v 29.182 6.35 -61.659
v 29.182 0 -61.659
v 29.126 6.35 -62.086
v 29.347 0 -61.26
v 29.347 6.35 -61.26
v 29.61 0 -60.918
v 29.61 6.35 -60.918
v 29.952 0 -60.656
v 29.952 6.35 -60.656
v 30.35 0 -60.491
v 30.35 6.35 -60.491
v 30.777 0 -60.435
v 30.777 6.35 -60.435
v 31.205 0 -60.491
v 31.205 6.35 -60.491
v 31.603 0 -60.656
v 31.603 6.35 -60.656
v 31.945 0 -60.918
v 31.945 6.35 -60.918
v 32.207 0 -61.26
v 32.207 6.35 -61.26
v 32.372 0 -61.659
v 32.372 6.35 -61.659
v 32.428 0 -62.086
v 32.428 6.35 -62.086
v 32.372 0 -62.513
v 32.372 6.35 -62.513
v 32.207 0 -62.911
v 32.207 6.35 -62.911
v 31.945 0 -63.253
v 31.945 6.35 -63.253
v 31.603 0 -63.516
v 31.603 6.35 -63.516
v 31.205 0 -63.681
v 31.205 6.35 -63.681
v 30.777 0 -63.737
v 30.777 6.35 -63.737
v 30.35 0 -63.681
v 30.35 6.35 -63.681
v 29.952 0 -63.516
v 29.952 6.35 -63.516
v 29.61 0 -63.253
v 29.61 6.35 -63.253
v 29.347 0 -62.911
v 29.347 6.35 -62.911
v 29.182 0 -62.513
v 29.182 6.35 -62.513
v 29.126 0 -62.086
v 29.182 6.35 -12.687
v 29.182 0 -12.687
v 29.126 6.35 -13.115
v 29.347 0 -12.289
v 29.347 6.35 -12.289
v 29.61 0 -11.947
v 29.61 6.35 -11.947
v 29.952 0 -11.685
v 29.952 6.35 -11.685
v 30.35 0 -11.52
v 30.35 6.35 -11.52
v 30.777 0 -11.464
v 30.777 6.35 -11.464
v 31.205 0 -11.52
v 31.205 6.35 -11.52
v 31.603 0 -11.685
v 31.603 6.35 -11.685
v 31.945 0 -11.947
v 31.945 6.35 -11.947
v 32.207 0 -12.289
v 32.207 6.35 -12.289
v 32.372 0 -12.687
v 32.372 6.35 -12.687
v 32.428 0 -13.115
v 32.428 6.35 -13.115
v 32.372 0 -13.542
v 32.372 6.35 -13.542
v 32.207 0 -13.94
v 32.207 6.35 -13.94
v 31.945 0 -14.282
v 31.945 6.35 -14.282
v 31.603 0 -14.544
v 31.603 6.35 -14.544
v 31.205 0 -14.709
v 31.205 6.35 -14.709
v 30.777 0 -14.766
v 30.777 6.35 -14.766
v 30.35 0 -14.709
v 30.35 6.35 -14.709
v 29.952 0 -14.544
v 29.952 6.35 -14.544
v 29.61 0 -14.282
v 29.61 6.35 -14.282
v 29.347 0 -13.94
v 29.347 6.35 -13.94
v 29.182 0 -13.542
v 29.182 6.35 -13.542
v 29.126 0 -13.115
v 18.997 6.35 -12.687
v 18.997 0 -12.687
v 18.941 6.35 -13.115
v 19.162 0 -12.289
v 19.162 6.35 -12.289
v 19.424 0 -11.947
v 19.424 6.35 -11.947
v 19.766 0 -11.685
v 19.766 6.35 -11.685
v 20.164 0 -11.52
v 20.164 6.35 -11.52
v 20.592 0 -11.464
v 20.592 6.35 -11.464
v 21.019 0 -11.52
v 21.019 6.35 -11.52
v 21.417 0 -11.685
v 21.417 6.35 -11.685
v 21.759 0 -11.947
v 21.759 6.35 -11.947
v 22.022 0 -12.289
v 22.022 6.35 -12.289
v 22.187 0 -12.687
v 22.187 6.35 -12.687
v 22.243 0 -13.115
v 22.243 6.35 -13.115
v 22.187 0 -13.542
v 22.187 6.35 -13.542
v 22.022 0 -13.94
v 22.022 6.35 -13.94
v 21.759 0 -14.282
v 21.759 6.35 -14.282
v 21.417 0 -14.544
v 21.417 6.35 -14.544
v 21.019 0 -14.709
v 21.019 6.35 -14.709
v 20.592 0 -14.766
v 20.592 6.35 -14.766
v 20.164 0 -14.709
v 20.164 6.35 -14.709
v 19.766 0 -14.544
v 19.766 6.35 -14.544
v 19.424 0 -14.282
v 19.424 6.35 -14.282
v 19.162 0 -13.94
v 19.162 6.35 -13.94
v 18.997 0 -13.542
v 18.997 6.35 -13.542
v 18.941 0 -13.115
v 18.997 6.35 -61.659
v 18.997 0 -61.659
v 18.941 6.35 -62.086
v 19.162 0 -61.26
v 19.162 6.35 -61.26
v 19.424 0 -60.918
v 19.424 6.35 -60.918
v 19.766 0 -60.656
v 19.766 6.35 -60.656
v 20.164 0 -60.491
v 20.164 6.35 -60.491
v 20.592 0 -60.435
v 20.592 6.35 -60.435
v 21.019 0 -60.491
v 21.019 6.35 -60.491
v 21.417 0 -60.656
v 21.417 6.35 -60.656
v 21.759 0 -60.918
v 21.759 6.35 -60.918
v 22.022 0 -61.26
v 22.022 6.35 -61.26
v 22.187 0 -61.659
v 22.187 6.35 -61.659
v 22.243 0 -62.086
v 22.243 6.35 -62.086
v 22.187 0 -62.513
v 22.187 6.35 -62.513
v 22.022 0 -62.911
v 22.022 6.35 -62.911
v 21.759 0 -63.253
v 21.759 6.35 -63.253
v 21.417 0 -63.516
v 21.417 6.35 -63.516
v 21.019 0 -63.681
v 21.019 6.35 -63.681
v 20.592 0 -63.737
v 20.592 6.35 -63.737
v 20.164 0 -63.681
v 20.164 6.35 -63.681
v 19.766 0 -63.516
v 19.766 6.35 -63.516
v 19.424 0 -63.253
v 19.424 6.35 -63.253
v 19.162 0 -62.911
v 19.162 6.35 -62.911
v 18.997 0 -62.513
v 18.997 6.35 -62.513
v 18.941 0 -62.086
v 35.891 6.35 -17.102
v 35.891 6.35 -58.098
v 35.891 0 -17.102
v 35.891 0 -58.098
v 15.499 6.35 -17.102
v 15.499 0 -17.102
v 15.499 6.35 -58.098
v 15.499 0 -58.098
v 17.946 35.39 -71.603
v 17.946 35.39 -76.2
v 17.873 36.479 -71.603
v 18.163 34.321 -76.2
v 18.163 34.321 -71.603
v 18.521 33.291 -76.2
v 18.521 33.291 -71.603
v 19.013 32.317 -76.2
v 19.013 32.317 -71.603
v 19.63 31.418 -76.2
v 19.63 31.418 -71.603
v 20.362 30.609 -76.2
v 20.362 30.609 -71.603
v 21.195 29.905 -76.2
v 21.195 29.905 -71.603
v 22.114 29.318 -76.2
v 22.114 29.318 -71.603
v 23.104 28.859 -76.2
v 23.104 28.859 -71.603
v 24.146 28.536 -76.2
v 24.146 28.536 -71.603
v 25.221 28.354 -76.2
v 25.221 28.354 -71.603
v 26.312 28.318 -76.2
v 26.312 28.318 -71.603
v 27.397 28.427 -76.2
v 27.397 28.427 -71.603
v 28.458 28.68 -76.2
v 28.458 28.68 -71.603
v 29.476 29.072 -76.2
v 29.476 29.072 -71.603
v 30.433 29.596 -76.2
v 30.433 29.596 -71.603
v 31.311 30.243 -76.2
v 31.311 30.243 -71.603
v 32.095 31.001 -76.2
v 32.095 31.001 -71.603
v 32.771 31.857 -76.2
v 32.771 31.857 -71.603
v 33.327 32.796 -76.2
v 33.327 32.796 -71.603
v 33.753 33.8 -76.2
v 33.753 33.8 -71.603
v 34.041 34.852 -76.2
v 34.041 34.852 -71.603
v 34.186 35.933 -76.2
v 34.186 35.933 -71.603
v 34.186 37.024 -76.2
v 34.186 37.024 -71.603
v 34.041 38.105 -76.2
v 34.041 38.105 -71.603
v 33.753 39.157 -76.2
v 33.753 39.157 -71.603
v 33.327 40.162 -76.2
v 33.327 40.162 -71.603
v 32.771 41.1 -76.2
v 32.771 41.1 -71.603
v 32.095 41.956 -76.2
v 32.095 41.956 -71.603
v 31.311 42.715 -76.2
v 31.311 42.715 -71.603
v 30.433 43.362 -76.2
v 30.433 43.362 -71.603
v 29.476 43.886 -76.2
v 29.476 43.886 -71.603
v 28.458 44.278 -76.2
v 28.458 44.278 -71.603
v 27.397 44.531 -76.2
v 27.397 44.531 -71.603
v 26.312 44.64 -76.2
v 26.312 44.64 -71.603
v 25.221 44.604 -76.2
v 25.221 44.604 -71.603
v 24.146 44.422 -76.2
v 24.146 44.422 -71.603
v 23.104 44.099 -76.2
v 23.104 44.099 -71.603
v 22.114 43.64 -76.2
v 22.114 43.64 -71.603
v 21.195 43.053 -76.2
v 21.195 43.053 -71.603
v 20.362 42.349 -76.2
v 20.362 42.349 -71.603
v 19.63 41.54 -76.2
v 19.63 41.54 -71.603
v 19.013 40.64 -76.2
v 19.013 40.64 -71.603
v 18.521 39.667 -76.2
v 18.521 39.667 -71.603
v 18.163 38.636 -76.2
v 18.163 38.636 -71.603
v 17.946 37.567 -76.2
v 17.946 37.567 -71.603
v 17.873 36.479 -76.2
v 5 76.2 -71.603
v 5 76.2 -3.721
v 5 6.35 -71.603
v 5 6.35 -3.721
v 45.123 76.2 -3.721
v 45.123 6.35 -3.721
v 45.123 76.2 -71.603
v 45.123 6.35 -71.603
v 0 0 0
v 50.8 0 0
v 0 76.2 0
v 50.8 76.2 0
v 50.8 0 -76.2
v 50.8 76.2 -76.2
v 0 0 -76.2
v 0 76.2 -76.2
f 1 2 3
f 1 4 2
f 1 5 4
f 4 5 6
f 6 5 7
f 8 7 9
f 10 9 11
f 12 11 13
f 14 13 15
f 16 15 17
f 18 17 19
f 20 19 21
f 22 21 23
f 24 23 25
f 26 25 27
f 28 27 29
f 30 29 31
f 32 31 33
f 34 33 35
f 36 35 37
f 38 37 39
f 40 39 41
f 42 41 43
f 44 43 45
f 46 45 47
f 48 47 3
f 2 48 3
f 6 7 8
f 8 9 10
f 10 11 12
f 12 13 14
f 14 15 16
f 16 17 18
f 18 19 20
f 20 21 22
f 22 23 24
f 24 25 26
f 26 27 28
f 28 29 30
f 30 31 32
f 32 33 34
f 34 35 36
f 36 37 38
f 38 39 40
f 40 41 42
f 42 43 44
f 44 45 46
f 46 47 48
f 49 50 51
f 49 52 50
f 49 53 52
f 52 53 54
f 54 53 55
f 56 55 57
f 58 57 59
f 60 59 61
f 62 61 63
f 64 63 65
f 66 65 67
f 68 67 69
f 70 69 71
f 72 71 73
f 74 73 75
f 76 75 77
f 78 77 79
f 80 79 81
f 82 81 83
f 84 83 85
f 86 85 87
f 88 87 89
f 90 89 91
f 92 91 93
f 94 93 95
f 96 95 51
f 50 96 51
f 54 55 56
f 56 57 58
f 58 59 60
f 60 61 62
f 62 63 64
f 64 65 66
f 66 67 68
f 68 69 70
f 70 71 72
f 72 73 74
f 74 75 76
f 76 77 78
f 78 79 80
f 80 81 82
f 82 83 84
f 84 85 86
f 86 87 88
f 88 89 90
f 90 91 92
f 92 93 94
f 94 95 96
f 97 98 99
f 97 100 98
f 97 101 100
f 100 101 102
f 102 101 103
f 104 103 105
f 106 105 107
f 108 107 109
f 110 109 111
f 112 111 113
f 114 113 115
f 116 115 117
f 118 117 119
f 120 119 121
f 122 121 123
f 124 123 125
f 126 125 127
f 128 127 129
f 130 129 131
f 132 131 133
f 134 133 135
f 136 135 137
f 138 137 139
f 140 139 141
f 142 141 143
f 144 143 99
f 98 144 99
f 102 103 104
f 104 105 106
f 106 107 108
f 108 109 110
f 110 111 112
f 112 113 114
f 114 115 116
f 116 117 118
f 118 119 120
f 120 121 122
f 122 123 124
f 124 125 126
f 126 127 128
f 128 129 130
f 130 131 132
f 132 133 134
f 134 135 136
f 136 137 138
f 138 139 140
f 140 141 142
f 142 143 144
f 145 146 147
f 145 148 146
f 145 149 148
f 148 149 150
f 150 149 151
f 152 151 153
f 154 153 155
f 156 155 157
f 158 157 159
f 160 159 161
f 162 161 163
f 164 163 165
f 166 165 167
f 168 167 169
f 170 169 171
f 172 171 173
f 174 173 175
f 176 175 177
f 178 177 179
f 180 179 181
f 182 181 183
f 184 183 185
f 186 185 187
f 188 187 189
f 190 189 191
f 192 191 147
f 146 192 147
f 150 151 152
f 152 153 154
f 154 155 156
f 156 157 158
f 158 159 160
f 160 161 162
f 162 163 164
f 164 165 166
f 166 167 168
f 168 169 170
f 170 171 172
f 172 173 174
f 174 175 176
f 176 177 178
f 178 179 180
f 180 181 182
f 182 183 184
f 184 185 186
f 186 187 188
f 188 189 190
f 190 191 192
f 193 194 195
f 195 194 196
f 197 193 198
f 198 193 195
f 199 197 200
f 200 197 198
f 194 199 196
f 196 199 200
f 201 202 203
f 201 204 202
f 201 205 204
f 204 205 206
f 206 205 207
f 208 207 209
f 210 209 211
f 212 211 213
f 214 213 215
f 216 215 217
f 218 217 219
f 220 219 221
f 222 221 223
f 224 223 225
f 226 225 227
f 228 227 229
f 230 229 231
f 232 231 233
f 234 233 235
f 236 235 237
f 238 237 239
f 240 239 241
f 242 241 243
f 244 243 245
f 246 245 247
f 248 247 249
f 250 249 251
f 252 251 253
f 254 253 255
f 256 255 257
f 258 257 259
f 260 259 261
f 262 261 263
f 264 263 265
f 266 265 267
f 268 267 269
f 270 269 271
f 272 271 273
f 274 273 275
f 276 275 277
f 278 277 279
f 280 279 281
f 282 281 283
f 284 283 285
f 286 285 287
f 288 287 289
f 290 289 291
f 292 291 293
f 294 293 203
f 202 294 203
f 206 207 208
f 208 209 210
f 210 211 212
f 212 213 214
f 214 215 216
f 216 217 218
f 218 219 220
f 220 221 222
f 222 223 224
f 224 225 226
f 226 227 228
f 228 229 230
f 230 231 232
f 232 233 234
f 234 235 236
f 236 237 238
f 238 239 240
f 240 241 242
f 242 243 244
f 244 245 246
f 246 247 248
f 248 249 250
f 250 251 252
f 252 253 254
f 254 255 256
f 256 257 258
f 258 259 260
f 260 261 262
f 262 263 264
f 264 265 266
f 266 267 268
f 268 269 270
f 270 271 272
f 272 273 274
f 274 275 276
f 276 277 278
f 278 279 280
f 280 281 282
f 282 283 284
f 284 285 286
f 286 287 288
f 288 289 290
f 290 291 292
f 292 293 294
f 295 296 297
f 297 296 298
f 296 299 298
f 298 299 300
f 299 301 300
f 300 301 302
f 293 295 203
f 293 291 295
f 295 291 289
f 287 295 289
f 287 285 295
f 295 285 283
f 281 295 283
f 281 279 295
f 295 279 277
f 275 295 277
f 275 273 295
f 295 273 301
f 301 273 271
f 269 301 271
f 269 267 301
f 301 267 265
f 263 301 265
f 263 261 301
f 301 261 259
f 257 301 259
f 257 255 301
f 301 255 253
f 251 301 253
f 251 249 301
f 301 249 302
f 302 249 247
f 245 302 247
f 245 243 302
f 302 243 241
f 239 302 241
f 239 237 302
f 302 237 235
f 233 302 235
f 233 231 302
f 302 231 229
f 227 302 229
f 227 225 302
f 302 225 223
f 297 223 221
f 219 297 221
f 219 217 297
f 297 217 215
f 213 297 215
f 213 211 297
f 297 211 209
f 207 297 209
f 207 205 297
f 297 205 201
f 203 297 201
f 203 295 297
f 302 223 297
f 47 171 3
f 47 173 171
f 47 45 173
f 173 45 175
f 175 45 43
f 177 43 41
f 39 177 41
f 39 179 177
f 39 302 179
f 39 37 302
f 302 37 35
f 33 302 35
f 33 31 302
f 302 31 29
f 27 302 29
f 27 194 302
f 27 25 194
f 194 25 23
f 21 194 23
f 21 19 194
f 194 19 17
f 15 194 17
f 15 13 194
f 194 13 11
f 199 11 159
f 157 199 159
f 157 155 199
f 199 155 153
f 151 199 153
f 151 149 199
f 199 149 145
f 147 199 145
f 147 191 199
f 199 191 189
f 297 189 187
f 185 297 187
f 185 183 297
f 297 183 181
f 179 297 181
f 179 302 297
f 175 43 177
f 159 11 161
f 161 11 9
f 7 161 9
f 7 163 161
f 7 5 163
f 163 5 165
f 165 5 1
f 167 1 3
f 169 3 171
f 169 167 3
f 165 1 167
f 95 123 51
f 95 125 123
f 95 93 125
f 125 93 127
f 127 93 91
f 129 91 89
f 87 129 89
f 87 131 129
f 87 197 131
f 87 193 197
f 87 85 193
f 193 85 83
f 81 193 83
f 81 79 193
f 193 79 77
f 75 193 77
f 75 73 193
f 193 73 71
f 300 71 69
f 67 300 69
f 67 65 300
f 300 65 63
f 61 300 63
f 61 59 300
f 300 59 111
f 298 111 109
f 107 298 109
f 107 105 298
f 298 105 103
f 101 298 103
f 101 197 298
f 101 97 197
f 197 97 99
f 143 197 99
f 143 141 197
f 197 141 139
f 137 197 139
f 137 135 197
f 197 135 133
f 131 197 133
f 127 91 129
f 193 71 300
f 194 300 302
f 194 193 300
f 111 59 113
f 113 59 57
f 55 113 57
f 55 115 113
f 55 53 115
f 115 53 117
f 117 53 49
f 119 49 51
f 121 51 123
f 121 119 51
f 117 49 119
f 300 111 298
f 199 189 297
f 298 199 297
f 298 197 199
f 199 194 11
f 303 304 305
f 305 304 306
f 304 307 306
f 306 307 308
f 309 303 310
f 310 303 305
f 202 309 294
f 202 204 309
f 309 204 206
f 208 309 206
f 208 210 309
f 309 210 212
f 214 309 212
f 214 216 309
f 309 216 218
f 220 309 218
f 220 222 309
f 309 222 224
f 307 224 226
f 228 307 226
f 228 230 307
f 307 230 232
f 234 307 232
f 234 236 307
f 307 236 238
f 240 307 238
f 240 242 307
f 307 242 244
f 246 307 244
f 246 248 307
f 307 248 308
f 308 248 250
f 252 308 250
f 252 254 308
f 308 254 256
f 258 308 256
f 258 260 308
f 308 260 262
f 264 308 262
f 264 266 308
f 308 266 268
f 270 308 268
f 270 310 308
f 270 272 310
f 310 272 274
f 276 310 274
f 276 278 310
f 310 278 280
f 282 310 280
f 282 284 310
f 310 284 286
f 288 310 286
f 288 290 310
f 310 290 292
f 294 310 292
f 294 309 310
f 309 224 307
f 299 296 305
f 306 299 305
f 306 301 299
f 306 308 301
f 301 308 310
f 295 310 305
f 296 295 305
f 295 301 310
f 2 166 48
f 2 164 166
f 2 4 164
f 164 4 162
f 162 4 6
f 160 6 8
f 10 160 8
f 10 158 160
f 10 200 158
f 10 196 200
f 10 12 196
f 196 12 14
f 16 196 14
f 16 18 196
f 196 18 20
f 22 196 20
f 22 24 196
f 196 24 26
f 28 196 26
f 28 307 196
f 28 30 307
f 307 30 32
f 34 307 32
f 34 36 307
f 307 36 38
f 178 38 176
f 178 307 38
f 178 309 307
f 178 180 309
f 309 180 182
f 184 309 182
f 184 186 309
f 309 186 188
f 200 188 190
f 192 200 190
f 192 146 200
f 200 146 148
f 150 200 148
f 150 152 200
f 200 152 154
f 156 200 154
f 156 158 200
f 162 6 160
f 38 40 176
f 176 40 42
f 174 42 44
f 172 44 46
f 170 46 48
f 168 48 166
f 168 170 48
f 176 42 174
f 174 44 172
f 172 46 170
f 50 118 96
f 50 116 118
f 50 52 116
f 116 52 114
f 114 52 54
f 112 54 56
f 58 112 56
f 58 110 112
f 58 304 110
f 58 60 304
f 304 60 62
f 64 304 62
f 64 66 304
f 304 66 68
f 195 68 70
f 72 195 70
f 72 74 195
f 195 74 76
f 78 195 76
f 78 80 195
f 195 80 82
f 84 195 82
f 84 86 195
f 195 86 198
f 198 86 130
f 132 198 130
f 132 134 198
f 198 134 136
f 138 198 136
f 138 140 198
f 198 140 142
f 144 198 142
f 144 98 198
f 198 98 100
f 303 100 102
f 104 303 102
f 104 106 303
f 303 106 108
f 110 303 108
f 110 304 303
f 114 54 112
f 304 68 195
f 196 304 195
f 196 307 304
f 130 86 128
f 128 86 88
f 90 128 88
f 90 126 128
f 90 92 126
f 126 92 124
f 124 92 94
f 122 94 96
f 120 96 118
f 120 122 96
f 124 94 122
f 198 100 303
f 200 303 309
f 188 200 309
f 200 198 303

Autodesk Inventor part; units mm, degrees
ref_plane "YZ Plane" through (0, 0, 0) normal (1, 0, 0) x (0, 1, 0)
ref_plane "XZ Plane" through (0, 0, 0) normal (0, 1, 0) x (-1, 0, 0)
ref_plane "XY Plane" through (0, 0, 0) normal (0, 0, 1) x (1, 0, 0)
sketch "Sketch1" plane through (0, 0, 0) normal (0, 1, 0) x (-1, 0, 0)
  line L0 (0, 0) -> (-50.8, 0)
  line L1 (-50.8, 0) -> (-50.8, -76.2)
  line L2 (-50.8, -76.2) -> (0, -76.2)
  line L3 (0, -76.2) -> (0, 0)
  line L4 (-4.0754, 0) -> (-4.0754, -6.35)
  line L5 (0, -6.35) -> (-6.35, -6.35)
  line L6 (-50.8, -76.2) -> (-50.8, -69.85)
  line L7 (-50.8, -69.85) -> (-44.45, -69.85)
  line L8 (-6.35, -6.35) -> (-44.45, -6.35)
  line L9 (-44.45, -6.35) -> (-44.45, -69.85)
  line L10 (-44.45, -69.85) -> (-6.35, -69.85)
  line L11 (-6.35, -69.85) -> (-6.35, -6.35)
  dimension "d0" = 50.8
  dimension "d1" = 76.2
  dimension "d2" = 6.35
  dimension "d3" = 6.35
  dimension "d4" = 6.35
  dimension "d5" = 6.35
sketch "Sketch2" plane through (0, 0, 0) normal (0, 1, 0) x (-1, 0, 0)
  line L0 (-15.4991, -17.1025) -> (-35.8913, -17.1025)
  line L1 (-35.8913, -17.1025) -> (-35.8913, -58.0981)
  line L2 (-35.8913, -58.0981) -> (-15.4991, -58.0981)
  line L3 (-15.4991, -58.0981) -> (-15.4991, -17.1025)
  line L4 (-13.6908, -9.3345) -> (-8.6145, -9.1421)
  line L5 (-38.0829, -65.7666) -> (-42.7545, -67.7622)
  line L6 (-8.6145, -9.1421) -> (-42.7545, -9.1421)
  line L7 (-42.7545, -9.1421) -> (-42.7545, -67.7622)
  line L8 (-42.7545, -67.7622) -> (-8.6145, -67.7622)
  line L9 (-8.6145, -67.7622) -> (-8.6145, -9.1421)
  circle A0 centre (-20.5918, -13.1147) radius 1.651
  circle A1 centre (-30.7772, -13.1147) radius 1.651
  circle A2 centre (-20.5918, -62.0859) radius 1.651
  circle A3 centre (-30.7772, -62.0859) radius 1.651
  point P0 (0, 0)
  dimension "d6" = 40.9956
  dimension "d7" = 7.9756
  dimension "d8" = 5.08
  dimension "d9" = 7.9756
  dimension "d10" = 5.08
  dimension "d11" = 3.302
  dimension "d12" = 3.302
  dimension "d13" = 3.302
  dimension "d14" = 3.302
  dimension "d15" = 6.8846
  dimension "d16" = 6.8633
sketch "Sketch3" plane through (0, 0, 0) normal (0, 1, 0) x (-1, 0, 0)
  line L0 (-6.35, -6.35) -> (-44.45, -6.35)
  line L1 (-44.45, -6.35) -> (-44.45, -69.85)
  line L2 (-44.45, -69.85) -> (-6.35, -69.85)
  line L3 (-6.35, -69.85) -> (-6.35, -6.35)
  point P0 (0, 0)
extrude "Extrusion1" add sketch "Sketch1" along normal blind 76.2
sketch "Sketch4" plane through (0, 76.2, 0) normal (0, 1, 0) x (1, 0, 0)
  line L0 (45.1232, 71.603) -> (4.9996, 71.603)
  line L1 (4.9996, 71.603) -> (4.9996, 3.7205)
  line L2 (4.9996, 3.7205) -> (45.1232, 3.7205)
  line L3 (45.1232, 3.7205) -> (45.1232, 71.603)
  point P0 (0, 0)
extrude "Extrusion2" cut sketch "Sketch4" against normal blind 69.85
sketch "Sketch5" plane through (50.8, 0, -76.2) normal (0, 0, -1) x (-1, 0, 0)
  circle A0 centre (24.7613, 36.4788) radius 8.1657
  point P0 (50.8, 0)
extrude "Extrusion3" cut sketch "Sketch5" against normal blind 25.4
extrude "Extrusion4" cut sketch "Sketch2" along normal through all contours L3 L2 L1 L0 | A0 | A1 | A2 | A3
